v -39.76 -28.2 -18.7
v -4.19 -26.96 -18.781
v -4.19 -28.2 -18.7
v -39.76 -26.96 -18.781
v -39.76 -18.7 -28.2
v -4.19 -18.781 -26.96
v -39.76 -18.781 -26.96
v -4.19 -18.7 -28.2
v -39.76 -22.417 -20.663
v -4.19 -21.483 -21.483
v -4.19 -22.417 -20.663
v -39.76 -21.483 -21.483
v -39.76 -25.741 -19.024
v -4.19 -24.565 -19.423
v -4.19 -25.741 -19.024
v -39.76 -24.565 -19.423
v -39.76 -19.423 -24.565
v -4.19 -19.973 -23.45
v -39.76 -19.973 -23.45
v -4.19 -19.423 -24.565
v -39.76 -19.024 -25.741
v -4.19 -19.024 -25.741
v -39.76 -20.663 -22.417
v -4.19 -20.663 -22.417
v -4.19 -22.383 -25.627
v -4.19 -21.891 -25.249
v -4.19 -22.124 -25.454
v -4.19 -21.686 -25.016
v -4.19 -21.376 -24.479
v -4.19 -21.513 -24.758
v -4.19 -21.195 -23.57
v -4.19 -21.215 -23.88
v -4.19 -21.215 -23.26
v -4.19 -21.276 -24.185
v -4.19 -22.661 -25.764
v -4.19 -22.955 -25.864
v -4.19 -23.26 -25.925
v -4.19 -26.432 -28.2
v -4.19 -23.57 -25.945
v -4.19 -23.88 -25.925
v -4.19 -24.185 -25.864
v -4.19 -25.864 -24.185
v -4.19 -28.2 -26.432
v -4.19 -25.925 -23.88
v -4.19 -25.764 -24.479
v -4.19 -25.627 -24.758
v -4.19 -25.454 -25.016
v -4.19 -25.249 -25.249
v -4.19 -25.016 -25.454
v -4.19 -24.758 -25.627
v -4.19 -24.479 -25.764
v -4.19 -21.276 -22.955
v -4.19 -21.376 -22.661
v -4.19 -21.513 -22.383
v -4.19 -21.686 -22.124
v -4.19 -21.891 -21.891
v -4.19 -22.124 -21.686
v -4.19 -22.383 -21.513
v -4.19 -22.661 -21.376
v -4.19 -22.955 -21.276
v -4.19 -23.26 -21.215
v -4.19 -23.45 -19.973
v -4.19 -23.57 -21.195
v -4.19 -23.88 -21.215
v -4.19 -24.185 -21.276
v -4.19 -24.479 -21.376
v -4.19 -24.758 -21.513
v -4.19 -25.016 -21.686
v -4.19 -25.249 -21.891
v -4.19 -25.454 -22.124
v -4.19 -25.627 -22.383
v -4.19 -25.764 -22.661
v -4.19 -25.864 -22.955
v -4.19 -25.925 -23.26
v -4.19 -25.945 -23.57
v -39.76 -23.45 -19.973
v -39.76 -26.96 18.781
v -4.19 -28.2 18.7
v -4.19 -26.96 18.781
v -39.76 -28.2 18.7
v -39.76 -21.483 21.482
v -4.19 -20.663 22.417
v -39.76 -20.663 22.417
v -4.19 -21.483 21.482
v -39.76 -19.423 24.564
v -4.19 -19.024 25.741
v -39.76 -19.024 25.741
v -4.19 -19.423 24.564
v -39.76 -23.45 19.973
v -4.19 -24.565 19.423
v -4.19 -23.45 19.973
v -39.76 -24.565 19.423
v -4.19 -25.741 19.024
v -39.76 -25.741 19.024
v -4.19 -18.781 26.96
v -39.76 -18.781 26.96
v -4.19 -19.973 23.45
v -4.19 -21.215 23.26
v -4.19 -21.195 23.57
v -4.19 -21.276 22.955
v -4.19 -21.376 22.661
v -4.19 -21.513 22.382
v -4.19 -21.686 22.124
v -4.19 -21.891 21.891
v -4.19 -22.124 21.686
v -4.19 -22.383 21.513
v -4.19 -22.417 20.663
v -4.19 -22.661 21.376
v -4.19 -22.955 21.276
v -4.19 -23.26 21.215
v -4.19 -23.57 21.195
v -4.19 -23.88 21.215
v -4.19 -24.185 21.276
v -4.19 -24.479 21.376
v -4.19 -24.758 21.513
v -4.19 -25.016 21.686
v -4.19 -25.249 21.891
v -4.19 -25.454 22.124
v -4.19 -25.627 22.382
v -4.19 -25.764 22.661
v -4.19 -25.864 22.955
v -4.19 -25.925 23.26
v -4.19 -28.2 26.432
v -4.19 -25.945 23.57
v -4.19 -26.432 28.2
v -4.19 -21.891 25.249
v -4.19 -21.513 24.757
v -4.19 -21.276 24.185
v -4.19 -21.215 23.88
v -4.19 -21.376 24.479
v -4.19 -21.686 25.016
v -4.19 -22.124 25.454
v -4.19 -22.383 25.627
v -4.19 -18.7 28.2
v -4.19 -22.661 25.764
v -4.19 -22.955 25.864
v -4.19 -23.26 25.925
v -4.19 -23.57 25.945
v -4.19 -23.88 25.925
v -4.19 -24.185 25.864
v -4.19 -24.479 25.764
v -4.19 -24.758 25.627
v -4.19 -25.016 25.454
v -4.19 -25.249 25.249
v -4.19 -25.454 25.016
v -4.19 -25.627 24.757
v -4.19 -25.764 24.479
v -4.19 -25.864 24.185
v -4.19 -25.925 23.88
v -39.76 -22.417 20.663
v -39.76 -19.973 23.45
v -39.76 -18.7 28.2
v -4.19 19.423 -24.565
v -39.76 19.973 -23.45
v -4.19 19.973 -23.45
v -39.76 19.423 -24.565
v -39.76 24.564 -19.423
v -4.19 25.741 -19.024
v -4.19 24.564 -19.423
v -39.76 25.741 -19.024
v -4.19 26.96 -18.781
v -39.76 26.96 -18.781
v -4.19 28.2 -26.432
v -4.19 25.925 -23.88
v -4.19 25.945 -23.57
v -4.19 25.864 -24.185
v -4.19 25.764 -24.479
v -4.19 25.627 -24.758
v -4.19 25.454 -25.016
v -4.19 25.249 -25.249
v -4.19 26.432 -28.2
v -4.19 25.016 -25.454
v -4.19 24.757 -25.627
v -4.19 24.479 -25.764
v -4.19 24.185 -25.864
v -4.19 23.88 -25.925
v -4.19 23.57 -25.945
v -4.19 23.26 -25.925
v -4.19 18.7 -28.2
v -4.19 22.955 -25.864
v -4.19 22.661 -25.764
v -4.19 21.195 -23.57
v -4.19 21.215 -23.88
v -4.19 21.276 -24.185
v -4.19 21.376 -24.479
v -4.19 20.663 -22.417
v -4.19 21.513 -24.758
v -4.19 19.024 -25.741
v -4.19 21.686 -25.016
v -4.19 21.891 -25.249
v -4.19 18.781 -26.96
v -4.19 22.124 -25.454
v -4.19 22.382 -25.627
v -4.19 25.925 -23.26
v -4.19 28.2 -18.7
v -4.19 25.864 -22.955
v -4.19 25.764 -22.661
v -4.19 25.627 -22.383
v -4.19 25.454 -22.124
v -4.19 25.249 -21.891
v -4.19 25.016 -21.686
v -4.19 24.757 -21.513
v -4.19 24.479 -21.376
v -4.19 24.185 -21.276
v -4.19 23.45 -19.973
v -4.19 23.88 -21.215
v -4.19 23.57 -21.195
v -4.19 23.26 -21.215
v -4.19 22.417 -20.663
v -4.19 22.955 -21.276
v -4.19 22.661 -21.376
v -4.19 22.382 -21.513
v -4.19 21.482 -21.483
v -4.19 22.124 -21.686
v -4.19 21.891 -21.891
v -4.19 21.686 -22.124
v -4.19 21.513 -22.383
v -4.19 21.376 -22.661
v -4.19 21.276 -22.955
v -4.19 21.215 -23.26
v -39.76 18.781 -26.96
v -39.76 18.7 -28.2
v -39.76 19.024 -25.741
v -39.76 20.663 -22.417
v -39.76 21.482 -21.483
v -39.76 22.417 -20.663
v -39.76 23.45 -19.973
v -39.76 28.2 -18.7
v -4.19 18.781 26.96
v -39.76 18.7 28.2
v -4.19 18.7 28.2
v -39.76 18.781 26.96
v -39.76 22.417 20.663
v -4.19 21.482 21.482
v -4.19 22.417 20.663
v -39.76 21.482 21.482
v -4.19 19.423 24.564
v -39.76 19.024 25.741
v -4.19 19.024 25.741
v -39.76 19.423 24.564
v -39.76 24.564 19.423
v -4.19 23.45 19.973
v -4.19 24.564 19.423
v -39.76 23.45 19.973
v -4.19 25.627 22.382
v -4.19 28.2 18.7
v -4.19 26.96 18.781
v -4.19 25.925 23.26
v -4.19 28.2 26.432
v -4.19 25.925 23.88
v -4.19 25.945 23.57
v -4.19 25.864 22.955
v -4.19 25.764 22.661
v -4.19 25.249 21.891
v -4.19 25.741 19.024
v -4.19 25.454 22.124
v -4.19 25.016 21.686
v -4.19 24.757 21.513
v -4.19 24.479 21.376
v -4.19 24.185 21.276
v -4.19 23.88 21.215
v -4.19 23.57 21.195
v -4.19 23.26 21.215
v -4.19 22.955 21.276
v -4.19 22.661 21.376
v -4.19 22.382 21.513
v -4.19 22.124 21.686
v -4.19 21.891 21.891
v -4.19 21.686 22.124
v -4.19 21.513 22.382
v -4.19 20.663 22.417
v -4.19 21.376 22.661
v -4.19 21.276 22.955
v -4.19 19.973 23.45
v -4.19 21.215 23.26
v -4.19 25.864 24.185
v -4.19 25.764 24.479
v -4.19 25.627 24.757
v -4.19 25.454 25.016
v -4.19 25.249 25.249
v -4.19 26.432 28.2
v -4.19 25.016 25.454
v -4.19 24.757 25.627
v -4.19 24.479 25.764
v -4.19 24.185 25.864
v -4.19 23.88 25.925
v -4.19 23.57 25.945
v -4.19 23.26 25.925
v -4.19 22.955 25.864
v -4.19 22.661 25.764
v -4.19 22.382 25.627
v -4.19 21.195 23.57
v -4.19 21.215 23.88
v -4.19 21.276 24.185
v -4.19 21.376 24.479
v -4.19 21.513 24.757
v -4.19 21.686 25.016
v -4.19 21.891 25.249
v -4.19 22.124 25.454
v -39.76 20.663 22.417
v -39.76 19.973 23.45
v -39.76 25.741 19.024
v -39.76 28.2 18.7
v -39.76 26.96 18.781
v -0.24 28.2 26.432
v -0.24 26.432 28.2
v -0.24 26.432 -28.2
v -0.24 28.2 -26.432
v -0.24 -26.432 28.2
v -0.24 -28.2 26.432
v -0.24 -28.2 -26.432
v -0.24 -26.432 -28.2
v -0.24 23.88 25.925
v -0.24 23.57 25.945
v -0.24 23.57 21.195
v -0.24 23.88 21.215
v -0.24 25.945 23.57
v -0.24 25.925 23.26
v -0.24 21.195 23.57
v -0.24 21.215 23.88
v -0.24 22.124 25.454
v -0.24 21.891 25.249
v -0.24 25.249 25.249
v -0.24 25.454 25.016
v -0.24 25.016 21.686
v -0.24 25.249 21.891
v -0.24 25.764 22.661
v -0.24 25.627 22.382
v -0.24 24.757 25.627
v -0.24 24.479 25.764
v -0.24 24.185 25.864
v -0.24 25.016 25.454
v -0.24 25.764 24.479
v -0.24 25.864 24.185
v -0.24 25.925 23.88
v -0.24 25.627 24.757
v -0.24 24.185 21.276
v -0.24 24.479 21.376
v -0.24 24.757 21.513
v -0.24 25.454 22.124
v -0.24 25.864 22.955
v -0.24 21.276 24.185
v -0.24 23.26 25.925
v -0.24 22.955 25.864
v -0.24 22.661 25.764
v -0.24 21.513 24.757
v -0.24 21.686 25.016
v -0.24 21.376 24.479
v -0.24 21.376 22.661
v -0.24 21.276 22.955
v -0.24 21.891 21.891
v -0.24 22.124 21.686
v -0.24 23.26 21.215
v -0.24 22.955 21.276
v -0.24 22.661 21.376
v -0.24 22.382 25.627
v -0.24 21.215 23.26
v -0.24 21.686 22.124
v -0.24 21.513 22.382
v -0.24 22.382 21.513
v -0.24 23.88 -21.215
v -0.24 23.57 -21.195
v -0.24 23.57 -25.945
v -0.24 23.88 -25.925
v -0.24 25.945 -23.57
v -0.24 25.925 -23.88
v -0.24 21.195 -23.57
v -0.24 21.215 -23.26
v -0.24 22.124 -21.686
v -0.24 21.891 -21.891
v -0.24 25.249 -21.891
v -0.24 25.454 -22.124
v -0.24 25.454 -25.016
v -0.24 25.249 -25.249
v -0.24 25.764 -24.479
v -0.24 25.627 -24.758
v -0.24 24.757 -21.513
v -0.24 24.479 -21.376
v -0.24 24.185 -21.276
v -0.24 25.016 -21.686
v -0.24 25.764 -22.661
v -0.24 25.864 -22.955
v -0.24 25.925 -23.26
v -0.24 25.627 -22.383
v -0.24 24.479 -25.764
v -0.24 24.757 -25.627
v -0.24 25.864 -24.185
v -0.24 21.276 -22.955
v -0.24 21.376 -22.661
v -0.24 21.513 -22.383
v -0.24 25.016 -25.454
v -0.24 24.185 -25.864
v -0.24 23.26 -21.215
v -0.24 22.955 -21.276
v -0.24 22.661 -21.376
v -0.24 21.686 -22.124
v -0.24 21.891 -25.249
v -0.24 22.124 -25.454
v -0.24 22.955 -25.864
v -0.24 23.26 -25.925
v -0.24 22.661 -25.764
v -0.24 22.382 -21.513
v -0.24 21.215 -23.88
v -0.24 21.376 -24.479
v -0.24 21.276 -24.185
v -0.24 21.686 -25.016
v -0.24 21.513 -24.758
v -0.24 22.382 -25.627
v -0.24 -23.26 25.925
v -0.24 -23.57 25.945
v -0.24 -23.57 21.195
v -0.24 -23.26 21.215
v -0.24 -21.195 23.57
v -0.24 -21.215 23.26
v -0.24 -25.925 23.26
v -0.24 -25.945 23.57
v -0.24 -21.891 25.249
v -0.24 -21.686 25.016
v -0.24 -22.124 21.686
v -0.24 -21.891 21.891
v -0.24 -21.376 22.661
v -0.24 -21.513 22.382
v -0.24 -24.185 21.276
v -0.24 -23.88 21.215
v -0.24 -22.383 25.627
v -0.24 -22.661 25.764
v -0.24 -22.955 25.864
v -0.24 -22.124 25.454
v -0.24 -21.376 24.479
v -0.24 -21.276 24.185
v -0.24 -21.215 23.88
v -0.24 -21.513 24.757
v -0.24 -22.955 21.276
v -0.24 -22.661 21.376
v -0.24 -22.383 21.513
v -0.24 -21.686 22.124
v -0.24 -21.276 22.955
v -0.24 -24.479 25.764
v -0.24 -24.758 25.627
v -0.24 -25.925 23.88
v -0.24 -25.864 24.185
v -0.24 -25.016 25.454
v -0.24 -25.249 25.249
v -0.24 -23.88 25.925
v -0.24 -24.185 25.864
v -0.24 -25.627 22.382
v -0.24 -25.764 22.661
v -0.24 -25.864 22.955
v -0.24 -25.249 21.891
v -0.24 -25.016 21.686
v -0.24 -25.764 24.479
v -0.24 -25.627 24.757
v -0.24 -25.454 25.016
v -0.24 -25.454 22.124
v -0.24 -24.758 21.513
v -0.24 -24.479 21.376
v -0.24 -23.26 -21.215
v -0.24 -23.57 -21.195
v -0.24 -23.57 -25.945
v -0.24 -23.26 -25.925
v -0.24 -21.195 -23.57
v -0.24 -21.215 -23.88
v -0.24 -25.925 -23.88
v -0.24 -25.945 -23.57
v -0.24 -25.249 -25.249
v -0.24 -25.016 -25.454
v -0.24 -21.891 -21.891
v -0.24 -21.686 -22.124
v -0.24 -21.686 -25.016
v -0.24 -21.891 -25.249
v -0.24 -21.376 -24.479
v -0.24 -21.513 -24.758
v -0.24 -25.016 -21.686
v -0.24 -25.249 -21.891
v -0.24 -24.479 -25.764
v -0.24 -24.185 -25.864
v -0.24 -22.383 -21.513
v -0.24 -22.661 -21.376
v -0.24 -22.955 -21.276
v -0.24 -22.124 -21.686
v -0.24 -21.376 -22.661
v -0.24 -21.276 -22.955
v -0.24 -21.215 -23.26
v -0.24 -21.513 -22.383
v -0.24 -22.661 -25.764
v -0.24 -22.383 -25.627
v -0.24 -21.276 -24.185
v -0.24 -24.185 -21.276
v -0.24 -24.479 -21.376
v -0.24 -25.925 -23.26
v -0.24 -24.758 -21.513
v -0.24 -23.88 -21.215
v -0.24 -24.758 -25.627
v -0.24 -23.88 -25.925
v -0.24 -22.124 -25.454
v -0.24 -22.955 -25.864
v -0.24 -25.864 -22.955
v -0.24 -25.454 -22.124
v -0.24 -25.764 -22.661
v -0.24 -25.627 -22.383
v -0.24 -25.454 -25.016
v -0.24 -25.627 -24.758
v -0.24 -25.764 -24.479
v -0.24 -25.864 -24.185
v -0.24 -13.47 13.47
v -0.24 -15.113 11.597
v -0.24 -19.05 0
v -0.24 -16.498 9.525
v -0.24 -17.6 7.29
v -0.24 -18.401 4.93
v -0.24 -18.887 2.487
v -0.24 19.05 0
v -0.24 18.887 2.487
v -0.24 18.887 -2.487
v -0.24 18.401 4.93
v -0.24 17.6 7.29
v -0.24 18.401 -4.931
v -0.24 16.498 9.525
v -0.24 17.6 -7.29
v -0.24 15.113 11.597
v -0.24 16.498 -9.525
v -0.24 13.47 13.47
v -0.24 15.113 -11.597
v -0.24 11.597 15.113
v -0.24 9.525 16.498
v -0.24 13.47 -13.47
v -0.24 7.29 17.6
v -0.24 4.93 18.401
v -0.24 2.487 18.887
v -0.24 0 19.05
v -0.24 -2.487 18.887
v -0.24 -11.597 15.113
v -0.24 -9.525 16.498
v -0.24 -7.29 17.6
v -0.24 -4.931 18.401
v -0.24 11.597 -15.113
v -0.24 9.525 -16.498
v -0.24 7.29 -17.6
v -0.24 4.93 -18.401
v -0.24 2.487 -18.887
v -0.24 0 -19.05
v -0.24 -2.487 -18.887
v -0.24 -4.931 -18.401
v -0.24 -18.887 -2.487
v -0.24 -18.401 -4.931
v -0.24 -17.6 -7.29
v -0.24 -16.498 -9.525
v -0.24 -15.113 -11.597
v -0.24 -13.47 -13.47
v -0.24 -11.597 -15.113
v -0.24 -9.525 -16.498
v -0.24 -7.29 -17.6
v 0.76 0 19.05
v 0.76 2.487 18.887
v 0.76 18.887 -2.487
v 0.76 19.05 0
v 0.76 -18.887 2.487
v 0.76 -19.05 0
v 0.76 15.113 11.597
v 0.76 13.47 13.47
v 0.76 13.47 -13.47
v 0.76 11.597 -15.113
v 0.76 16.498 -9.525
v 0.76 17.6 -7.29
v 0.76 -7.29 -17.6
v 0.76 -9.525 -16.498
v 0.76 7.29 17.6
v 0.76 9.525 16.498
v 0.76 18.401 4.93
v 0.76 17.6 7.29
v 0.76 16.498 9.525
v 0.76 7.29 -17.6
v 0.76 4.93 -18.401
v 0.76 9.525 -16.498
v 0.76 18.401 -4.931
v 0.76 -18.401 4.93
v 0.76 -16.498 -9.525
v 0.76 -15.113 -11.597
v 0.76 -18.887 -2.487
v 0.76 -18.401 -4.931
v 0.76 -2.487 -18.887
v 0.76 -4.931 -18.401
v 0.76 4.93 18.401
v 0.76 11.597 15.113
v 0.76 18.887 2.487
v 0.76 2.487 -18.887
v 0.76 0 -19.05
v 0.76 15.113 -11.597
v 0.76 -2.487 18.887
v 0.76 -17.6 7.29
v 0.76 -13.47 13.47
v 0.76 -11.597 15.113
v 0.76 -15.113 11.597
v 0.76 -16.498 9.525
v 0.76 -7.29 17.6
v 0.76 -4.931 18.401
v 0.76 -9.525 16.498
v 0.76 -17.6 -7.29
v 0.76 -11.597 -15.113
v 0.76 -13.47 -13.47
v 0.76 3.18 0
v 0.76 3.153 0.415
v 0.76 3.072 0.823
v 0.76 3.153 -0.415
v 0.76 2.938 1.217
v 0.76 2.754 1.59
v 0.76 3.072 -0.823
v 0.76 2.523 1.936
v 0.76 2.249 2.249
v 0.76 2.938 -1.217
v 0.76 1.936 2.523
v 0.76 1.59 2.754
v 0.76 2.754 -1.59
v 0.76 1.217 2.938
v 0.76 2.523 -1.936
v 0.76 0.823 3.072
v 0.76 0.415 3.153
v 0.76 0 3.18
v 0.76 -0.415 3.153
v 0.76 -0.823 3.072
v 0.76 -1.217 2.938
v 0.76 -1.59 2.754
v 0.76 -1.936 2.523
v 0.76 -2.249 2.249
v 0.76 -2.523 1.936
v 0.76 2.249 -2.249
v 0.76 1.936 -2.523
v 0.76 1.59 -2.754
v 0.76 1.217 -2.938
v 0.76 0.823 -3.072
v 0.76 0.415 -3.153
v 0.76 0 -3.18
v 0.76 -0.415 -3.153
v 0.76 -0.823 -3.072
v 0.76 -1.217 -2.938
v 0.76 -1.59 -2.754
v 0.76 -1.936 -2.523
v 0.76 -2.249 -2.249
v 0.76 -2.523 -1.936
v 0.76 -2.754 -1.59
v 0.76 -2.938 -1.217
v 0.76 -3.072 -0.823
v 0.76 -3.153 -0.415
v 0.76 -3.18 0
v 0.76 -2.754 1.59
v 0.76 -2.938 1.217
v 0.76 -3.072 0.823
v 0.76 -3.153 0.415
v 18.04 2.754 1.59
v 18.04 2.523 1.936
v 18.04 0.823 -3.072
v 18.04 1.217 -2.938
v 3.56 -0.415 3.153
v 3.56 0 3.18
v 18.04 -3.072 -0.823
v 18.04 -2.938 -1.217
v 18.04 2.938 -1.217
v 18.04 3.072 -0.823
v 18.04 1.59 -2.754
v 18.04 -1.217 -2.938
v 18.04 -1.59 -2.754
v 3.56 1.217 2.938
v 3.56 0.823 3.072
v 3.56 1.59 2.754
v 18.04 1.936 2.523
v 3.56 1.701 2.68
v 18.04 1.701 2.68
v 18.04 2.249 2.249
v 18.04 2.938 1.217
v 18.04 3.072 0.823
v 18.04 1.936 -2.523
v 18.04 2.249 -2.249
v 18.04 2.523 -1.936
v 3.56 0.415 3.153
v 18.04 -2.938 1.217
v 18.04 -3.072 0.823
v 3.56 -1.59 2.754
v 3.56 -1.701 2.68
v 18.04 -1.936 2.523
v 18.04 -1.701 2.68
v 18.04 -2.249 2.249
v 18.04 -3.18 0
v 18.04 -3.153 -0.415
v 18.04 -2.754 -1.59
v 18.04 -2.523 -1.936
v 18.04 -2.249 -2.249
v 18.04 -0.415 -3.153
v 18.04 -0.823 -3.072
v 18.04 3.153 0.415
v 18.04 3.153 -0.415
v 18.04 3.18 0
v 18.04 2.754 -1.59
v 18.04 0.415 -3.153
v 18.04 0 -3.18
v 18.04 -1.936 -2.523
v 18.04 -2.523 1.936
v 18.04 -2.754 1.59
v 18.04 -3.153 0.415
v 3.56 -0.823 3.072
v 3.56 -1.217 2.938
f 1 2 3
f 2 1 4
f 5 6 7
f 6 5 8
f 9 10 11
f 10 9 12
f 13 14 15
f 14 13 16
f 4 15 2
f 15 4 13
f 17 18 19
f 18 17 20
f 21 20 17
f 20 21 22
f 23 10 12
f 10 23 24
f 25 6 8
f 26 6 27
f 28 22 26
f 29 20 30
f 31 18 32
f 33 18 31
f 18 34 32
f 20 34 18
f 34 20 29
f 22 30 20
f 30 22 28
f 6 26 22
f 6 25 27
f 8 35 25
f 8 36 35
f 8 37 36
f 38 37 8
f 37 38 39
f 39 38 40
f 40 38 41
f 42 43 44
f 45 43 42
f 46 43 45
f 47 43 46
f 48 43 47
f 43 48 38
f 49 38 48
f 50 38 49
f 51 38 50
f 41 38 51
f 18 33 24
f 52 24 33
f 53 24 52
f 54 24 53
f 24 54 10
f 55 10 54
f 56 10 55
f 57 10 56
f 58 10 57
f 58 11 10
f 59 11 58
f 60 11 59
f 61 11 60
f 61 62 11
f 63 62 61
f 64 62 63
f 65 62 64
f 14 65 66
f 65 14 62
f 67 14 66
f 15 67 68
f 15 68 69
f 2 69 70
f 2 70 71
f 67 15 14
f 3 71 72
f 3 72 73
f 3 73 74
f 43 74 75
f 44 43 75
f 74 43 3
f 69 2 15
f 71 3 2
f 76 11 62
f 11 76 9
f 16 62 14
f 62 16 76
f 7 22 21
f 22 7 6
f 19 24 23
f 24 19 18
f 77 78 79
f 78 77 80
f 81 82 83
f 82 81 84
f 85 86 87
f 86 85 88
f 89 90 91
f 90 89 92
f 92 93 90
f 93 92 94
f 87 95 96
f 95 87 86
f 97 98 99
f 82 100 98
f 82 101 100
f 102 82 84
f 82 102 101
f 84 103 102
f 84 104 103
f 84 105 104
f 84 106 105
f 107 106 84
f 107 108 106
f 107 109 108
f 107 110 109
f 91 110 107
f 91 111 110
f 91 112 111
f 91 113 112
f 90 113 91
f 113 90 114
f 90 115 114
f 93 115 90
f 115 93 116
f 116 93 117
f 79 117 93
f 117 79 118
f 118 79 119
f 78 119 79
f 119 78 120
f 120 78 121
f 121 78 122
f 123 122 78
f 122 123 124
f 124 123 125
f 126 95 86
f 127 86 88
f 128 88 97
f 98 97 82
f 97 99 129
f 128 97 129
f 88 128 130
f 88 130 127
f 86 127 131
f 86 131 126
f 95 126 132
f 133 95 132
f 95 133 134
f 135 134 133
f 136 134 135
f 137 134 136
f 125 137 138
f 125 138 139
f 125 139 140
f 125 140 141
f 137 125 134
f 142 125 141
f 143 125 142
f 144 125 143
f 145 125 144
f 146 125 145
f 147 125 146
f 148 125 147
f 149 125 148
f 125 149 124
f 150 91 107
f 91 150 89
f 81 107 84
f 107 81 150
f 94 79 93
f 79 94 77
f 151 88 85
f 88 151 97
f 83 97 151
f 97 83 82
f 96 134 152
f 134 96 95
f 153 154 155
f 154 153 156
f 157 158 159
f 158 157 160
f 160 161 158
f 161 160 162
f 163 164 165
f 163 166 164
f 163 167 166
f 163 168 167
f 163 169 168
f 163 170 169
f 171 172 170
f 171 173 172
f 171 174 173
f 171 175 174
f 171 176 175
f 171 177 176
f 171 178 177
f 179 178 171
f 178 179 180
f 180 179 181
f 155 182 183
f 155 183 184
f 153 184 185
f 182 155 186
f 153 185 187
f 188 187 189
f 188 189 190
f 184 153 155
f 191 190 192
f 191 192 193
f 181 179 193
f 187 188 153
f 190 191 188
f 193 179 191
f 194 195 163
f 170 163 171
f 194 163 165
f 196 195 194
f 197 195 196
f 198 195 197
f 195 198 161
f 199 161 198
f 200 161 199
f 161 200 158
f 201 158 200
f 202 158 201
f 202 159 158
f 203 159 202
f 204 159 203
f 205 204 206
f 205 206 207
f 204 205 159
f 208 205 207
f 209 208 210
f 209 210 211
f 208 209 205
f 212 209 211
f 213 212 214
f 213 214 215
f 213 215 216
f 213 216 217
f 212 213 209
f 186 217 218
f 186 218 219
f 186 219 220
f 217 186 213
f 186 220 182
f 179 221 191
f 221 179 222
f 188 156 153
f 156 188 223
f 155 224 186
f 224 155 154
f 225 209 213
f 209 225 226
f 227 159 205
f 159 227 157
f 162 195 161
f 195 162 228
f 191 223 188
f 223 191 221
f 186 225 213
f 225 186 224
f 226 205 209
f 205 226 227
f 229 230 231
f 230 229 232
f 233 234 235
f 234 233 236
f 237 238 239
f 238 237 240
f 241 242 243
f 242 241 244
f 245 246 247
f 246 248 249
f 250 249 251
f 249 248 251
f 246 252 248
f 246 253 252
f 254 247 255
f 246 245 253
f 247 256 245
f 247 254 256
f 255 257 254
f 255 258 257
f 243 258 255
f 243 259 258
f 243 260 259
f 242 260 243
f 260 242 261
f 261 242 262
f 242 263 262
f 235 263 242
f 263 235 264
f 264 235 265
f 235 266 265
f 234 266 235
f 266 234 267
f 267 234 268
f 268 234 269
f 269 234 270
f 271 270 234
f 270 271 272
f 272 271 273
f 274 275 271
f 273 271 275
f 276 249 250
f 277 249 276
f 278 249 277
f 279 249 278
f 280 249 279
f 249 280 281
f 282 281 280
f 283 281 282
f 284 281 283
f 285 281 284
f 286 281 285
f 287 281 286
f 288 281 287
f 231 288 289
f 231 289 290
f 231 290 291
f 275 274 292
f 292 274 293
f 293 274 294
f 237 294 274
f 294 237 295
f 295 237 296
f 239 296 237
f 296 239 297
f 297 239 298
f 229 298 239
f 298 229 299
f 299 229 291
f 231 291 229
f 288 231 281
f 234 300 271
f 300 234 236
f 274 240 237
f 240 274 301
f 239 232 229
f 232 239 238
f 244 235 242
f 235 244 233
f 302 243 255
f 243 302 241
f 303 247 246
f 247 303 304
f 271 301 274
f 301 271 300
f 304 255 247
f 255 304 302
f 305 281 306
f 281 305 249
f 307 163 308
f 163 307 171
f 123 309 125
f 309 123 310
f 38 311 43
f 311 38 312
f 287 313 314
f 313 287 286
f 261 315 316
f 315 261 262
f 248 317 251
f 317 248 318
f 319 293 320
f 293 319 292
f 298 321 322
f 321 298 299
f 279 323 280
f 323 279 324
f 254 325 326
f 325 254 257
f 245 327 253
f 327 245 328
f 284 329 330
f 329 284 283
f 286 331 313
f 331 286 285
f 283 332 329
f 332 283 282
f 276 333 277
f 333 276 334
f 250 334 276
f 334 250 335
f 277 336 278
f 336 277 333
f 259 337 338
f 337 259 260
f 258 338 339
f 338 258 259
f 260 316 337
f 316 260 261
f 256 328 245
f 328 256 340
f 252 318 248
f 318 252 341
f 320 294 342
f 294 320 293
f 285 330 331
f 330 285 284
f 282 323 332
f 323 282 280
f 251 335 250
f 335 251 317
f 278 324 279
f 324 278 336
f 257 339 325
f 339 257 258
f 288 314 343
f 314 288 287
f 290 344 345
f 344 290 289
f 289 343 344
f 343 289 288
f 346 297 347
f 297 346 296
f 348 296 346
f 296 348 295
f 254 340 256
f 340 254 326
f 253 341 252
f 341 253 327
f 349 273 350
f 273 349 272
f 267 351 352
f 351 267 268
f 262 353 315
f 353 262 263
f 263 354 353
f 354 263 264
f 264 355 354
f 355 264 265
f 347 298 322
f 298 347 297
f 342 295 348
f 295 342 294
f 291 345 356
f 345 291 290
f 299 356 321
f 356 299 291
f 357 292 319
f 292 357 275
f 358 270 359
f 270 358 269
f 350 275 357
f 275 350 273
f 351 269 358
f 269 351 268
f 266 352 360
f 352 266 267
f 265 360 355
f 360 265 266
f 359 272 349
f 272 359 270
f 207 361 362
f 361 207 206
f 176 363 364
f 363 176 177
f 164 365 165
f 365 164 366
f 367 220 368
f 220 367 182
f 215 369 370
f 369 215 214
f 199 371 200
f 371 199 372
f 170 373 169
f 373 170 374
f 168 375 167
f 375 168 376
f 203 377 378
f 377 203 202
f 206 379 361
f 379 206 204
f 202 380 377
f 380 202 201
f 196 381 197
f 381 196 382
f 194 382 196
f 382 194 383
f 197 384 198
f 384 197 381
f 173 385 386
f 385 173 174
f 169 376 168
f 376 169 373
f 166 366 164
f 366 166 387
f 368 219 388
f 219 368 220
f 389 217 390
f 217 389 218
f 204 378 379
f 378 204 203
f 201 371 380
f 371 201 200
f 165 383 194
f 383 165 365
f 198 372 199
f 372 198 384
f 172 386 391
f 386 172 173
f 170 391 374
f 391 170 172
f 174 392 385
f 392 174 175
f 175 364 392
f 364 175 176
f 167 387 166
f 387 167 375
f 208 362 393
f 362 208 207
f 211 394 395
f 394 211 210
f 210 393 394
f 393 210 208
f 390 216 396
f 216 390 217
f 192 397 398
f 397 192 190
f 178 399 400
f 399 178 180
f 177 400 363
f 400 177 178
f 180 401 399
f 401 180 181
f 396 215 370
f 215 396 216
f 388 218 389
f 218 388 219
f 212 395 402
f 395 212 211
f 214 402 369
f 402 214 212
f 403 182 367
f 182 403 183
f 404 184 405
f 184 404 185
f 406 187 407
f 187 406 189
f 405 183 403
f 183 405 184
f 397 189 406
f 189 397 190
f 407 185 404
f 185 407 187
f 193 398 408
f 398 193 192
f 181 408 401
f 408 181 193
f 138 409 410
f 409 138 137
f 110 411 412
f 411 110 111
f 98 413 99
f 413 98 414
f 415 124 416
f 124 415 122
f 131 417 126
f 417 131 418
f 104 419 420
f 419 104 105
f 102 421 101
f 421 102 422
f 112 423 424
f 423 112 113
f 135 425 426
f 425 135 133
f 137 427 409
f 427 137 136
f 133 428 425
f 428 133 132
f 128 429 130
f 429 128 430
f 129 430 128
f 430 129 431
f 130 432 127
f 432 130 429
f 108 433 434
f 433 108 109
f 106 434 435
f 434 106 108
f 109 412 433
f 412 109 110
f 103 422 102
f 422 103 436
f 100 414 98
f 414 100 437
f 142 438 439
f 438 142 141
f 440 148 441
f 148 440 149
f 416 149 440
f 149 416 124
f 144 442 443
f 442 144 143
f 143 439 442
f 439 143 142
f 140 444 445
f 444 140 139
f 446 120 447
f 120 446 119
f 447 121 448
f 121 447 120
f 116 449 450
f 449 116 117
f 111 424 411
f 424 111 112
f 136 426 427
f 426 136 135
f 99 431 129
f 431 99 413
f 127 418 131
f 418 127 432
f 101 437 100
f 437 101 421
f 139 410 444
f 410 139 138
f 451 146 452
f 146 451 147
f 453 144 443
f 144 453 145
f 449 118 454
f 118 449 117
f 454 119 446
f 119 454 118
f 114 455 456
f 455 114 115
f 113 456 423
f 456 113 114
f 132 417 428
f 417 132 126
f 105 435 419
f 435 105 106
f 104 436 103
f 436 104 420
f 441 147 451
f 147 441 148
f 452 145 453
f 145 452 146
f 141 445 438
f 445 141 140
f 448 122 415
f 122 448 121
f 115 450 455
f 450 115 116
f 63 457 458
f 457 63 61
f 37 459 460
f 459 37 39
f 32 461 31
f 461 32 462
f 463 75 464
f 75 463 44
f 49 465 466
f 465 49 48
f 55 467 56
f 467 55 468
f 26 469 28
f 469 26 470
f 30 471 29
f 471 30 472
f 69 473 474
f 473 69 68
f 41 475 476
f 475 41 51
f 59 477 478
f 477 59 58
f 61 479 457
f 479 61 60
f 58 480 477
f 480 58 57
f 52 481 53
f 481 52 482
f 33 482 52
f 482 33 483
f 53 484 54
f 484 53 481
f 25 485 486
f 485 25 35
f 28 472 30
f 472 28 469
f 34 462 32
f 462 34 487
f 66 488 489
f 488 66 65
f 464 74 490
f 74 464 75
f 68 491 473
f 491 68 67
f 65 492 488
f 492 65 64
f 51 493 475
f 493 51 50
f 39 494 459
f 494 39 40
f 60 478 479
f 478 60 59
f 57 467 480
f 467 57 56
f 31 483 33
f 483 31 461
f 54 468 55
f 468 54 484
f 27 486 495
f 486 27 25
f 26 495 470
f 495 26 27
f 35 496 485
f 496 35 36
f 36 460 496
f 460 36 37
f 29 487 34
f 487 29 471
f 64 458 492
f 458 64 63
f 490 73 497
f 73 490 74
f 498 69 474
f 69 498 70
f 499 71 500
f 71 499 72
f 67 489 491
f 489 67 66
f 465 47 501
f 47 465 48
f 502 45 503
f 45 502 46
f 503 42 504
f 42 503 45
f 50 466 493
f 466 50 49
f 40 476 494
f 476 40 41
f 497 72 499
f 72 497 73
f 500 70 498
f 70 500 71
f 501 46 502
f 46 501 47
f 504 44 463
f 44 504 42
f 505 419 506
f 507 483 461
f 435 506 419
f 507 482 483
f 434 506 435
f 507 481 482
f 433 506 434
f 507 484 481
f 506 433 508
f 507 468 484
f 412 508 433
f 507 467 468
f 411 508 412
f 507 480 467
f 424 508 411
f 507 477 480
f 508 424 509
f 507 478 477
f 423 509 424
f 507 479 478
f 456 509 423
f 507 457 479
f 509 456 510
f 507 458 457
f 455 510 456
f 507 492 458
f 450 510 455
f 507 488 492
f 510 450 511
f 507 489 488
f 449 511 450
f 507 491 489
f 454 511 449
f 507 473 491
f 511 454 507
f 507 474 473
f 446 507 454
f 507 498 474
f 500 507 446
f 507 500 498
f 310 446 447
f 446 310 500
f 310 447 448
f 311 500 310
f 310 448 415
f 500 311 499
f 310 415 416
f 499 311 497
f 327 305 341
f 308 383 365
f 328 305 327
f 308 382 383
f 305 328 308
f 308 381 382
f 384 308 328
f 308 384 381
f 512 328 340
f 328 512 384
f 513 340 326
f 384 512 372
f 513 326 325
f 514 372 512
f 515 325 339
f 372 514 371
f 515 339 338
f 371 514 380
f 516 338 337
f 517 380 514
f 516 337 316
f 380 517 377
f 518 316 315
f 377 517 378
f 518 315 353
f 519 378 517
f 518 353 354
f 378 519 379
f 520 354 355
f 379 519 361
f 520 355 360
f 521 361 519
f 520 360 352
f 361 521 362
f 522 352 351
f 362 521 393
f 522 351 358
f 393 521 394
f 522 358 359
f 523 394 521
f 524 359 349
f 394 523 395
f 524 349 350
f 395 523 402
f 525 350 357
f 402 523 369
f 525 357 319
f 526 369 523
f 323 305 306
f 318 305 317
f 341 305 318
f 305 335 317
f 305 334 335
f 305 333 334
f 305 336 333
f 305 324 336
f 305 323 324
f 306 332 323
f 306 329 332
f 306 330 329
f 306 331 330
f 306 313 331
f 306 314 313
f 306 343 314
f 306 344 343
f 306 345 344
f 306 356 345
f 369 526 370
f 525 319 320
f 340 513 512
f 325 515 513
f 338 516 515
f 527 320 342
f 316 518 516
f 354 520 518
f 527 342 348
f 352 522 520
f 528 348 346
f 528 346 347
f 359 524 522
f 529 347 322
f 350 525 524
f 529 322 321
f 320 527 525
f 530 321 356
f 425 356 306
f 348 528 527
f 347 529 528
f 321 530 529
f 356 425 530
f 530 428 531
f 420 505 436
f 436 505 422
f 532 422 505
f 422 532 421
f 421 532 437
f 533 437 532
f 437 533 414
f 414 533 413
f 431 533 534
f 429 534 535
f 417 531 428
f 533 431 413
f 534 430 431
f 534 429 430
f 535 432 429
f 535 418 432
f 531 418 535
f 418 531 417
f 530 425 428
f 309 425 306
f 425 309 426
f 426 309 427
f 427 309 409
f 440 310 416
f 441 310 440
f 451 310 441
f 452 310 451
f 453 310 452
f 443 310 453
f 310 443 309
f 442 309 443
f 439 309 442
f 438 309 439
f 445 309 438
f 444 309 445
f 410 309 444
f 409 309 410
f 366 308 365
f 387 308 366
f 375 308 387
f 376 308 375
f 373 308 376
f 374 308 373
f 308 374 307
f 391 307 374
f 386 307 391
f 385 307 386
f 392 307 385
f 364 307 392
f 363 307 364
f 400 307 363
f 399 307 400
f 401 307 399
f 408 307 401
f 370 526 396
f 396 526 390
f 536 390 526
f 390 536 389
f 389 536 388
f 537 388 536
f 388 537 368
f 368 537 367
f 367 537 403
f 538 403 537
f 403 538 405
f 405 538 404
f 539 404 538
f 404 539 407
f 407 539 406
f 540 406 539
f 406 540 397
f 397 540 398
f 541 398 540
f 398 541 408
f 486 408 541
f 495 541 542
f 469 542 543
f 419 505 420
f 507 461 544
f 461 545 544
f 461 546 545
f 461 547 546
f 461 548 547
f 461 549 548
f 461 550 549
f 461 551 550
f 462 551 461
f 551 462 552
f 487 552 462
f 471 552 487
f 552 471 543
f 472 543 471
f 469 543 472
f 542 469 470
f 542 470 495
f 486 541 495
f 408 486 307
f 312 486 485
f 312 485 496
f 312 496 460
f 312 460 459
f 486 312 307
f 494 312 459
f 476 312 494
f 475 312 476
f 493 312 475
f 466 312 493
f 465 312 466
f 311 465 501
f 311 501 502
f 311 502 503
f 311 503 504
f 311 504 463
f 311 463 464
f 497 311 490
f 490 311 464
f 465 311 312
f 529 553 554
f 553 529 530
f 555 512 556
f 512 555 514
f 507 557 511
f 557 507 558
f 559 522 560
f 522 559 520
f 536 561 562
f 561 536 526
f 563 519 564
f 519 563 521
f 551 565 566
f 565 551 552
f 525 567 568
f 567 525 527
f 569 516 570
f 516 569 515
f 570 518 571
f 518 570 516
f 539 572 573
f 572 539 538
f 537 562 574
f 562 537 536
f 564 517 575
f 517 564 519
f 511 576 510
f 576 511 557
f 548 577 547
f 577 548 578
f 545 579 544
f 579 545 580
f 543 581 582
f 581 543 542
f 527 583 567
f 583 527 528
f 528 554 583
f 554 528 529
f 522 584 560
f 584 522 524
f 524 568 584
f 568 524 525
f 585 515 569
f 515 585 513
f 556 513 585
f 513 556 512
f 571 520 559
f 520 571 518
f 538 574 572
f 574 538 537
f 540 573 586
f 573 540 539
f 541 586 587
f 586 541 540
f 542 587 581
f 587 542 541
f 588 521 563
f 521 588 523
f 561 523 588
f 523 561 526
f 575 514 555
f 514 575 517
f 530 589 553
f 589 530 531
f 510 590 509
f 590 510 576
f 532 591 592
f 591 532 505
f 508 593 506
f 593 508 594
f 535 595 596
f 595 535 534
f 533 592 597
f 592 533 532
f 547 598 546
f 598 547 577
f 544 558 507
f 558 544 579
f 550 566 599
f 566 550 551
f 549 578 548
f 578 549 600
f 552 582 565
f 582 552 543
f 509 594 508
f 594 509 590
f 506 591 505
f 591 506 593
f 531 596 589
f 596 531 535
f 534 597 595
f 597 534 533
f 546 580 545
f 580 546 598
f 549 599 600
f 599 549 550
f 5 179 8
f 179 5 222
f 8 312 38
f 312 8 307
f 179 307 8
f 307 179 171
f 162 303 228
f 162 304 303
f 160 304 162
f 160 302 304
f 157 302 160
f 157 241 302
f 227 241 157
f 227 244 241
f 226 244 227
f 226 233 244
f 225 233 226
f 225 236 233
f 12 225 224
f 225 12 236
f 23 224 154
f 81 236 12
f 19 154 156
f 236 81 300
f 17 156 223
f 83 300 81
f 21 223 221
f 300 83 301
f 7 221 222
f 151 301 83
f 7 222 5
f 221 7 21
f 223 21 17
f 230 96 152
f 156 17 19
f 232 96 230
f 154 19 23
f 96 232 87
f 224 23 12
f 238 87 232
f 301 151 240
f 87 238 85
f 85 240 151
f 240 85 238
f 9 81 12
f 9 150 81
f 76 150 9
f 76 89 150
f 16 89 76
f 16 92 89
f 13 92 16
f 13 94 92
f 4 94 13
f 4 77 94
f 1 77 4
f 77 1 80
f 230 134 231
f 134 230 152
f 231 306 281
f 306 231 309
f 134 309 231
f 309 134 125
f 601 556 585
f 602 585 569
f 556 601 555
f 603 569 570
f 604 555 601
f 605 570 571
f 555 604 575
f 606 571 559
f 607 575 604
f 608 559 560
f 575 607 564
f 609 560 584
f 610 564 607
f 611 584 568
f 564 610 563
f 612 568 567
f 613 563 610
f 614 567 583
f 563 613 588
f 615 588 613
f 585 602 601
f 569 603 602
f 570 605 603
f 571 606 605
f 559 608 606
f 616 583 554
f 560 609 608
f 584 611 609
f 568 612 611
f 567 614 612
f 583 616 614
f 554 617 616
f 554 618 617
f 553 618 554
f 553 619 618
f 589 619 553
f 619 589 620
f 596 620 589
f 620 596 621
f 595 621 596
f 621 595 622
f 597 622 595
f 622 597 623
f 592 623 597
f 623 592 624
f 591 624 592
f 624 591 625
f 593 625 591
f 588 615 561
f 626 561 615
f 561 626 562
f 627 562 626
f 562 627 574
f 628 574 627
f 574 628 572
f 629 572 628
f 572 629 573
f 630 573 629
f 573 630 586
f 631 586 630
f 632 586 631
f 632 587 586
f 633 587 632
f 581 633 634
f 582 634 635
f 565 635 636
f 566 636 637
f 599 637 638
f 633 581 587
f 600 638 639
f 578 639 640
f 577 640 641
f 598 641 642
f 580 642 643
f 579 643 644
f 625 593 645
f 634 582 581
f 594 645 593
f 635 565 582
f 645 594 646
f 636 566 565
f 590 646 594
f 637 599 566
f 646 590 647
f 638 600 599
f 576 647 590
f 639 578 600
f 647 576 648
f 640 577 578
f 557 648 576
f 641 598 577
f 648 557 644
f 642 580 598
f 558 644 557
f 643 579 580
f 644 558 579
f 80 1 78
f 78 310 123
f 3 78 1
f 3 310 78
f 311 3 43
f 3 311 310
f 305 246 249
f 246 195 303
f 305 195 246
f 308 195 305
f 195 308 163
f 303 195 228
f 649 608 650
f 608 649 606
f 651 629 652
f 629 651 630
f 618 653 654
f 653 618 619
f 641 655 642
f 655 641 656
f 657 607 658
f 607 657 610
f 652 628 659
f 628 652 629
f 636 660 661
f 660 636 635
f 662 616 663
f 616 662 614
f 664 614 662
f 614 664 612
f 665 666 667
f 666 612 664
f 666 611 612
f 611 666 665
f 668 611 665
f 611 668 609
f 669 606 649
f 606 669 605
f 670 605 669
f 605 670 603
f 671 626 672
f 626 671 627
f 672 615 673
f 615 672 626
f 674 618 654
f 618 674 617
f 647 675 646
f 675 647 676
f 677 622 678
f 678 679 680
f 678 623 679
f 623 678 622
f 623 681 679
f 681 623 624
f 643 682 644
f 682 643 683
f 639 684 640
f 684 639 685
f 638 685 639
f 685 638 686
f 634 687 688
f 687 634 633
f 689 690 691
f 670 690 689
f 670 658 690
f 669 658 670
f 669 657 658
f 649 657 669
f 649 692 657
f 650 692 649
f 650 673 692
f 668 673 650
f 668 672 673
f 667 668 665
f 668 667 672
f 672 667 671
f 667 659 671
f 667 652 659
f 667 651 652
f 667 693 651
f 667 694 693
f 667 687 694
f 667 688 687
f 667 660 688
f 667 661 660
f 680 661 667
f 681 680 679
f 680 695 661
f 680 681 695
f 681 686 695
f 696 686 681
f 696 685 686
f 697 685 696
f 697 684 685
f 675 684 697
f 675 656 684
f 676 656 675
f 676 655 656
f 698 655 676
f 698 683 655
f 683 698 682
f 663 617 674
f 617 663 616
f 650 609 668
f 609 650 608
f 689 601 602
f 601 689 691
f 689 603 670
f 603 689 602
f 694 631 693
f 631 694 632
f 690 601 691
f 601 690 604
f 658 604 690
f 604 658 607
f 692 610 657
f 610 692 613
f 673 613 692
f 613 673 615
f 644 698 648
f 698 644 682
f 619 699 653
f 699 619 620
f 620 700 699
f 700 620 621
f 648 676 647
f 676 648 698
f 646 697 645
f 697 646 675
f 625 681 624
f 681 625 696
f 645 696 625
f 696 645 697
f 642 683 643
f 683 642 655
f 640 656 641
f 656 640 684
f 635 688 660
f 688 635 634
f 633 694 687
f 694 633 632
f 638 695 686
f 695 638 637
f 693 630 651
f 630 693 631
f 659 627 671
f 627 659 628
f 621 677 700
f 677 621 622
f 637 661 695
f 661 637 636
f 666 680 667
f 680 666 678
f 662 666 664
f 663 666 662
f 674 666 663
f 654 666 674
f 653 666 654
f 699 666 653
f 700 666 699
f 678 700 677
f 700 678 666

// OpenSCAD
/**********************************************************************************************************************
 **
 ** lib/MCAD/stepper_nema23_short.scad
 **
 ** This file renders a NEMA stepper motor of the dimensions specified by the file name.
 **
 **********************************************************************************************************************/

include <MCAD/stepper.scad>

$fn = 48;
translate([lookup(NemaRoundExtrusionHeight, Nema23)/2, 0, 0])
	rotate([0, -90, 0])
		motor(Nema23, NemaShort, dualAxis = false);
